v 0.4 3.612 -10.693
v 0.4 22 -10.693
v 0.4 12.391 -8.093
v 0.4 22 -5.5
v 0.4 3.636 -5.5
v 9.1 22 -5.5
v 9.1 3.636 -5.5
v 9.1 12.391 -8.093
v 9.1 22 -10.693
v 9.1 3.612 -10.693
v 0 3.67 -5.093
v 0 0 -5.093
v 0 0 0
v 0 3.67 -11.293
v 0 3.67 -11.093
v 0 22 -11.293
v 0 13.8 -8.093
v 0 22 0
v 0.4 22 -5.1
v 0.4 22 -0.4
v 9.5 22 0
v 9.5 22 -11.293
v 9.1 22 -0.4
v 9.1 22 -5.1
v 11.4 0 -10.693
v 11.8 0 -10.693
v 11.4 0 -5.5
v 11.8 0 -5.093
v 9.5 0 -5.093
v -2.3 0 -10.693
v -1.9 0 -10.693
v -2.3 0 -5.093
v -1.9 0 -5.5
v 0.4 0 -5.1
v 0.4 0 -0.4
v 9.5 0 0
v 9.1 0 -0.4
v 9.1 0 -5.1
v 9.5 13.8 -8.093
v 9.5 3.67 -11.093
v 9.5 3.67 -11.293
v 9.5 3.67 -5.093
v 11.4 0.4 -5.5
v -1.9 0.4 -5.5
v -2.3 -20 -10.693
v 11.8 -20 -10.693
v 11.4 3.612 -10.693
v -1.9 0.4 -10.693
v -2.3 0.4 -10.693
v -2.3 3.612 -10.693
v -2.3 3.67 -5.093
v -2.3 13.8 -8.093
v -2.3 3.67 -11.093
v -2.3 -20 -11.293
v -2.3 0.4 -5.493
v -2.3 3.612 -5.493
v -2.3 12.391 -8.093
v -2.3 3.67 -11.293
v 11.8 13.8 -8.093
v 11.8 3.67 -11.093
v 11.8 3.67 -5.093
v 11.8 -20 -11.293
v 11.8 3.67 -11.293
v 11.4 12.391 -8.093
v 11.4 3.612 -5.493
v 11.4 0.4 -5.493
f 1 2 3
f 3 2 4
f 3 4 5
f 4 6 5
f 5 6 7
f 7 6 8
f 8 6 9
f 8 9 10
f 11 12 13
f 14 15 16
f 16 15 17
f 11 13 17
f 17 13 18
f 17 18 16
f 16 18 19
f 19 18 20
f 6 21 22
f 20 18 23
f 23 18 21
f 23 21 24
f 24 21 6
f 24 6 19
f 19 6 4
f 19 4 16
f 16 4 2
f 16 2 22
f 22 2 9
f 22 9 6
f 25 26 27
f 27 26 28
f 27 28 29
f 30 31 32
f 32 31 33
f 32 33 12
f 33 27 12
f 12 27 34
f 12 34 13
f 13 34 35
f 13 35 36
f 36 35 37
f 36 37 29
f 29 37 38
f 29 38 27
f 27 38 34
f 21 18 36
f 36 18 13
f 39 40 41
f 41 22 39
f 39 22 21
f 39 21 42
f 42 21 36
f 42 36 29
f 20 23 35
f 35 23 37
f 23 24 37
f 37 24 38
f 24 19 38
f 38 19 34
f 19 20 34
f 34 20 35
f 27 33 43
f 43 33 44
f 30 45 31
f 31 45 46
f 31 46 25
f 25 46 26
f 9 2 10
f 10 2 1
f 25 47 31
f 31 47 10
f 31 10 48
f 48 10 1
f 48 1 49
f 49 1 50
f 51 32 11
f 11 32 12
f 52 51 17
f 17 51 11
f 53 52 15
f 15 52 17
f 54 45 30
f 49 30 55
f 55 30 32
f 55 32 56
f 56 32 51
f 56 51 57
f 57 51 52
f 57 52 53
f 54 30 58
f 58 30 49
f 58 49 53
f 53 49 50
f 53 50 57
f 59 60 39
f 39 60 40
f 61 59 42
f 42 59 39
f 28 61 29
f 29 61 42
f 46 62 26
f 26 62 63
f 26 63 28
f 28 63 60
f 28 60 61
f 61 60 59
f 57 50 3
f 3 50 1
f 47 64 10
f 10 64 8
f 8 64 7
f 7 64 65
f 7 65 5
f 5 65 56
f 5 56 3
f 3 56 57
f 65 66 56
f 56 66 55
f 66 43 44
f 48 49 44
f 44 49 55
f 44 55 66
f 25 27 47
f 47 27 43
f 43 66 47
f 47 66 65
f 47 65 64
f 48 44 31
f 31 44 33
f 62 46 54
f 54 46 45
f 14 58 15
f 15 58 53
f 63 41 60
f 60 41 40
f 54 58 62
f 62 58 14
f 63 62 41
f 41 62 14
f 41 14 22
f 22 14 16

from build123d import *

# Parameters (mm, degrees)
SKIZZE1_W                       = 9.5
SKIZZE1_H                       = 11.093
SKIZZE1_W_2                     = 8.7
SKIZZE1_H_2                     = 4.7
SKIZZE1_H_3                     = 5.193
AUFSATZ_LINEAR_AUSTRAGEN1_DEPTH = 22
AUFSATZ_LINEAR_AUSTRAGEN2_DEPTH = 2.3
SCHNITT_LINEAR_AUSTRAGEN1_DEPTH = 13.7
SKIZZE4_W                       = 13.3
SKIZZE4_H                       = 5.193
SCHNITT_LINEAR_AUSTRAGEN2_DEPTH = 0.4
SKIZZE5_W                       = 14.1
SKIZZE5_H                       = 0.4
AUFSATZ_LINEAR_AUSTRAGEN3_DEPTH = 20
AUFSATZ_LINEAR_AUSTRAGEN4_DEPTH = 0.2


with BuildPart() as part:
    # Skizze1 → Aufsatz-Linear austragen1 (new body)
    with BuildSketch(Plane(origin=(0, 0, 0), x_dir=(1, 0, 0), z_dir=(0, 1, 0))):
        with Locations((4.75, 5.5465)):
            Rectangle(SKIZZE1_W, SKIZZE1_H)
        with Locations((4.75, 2.75)):
            Rectangle(SKIZZE1_W_2, SKIZZE1_H_2, mode=Mode.SUBTRACT)
        with Locations((4.75, 8.0965)):
            Rectangle(SKIZZE1_W_2, SKIZZE1_H_3, mode=Mode.SUBTRACT)
    extrude(amount=AUFSATZ_LINEAR_AUSTRAGEN1_DEPTH)

    # Skizze2 → Aufsatz-Linear austragen2 (add)
    with BuildSketch(Plane.ZY):
        Polygon((-11.093, 0), (-11.093, 3.67), (-8.093, 13.8), (-5.093, 3.67), (-5.093, 0), align=None)
    aufsatz_linear_austragen2 = extrude(amount=AUFSATZ_LINEAR_AUSTRAGEN2_DEPTH)

    # Spiegeln1: Aufsatz-Linear austragen2 across plane
    add(aufsatz_linear_austragen2.mirror(Plane(origin=(4.75, 0, 0), x_dir=(0, 0, 1), z_dir=(1, 0, 0))))

    # Skizze3 → Schnitt-Linear austragen1 (cut)
    with BuildSketch(Plane.ZY.offset(2.3)):
        Polygon((-10.693, 0.4), (-5.493, 0.4), (-5.493, 3.612014671), (-8.093, 12.391348004), (-10.693, 3.612014671), align=None)
    extrude(amount=-SCHNITT_LINEAR_AUSTRAGEN1_DEPTH, mode=Mode.SUBTRACT)

    # Skizze4 → Schnitt-Linear austragen2 (cut)
    with BuildSketch(Plane.XZ):
        with Locations((4.75, -8.0965)):
            Rectangle(SKIZZE4_W, SKIZZE4_H)
    extrude(amount=-SCHNITT_LINEAR_AUSTRAGEN2_DEPTH, mode=Mode.SUBTRACT)

    # Skizze5 → Aufsatz-Linear austragen3 (add)
    with BuildSketch(Plane.XZ):
        with Locations((4.75, -10.893)):
            Rectangle(SKIZZE5_W, SKIZZE5_H)
    extrude(amount=AUFSATZ_LINEAR_AUSTRAGEN3_DEPTH)

    # Skizze6 → Aufsatz-Linear austragen4 (add)
    with BuildSketch(Plane(origin=(0, 0, -11.093), x_dir=(-1, 0, 0), z_dir=(0, 0, -1))):
        Polygon((0, 3.67), (2.3, 3.67), (2.3, -20), (-11.8, -20), (-11.8, 3.67), (-9.5, 3.67), (-9.5, 22), (0, 22), align=None)
    extrude(amount=AUFSATZ_LINEAR_AUSTRAGEN4_DEPTH)


solid = part.part
